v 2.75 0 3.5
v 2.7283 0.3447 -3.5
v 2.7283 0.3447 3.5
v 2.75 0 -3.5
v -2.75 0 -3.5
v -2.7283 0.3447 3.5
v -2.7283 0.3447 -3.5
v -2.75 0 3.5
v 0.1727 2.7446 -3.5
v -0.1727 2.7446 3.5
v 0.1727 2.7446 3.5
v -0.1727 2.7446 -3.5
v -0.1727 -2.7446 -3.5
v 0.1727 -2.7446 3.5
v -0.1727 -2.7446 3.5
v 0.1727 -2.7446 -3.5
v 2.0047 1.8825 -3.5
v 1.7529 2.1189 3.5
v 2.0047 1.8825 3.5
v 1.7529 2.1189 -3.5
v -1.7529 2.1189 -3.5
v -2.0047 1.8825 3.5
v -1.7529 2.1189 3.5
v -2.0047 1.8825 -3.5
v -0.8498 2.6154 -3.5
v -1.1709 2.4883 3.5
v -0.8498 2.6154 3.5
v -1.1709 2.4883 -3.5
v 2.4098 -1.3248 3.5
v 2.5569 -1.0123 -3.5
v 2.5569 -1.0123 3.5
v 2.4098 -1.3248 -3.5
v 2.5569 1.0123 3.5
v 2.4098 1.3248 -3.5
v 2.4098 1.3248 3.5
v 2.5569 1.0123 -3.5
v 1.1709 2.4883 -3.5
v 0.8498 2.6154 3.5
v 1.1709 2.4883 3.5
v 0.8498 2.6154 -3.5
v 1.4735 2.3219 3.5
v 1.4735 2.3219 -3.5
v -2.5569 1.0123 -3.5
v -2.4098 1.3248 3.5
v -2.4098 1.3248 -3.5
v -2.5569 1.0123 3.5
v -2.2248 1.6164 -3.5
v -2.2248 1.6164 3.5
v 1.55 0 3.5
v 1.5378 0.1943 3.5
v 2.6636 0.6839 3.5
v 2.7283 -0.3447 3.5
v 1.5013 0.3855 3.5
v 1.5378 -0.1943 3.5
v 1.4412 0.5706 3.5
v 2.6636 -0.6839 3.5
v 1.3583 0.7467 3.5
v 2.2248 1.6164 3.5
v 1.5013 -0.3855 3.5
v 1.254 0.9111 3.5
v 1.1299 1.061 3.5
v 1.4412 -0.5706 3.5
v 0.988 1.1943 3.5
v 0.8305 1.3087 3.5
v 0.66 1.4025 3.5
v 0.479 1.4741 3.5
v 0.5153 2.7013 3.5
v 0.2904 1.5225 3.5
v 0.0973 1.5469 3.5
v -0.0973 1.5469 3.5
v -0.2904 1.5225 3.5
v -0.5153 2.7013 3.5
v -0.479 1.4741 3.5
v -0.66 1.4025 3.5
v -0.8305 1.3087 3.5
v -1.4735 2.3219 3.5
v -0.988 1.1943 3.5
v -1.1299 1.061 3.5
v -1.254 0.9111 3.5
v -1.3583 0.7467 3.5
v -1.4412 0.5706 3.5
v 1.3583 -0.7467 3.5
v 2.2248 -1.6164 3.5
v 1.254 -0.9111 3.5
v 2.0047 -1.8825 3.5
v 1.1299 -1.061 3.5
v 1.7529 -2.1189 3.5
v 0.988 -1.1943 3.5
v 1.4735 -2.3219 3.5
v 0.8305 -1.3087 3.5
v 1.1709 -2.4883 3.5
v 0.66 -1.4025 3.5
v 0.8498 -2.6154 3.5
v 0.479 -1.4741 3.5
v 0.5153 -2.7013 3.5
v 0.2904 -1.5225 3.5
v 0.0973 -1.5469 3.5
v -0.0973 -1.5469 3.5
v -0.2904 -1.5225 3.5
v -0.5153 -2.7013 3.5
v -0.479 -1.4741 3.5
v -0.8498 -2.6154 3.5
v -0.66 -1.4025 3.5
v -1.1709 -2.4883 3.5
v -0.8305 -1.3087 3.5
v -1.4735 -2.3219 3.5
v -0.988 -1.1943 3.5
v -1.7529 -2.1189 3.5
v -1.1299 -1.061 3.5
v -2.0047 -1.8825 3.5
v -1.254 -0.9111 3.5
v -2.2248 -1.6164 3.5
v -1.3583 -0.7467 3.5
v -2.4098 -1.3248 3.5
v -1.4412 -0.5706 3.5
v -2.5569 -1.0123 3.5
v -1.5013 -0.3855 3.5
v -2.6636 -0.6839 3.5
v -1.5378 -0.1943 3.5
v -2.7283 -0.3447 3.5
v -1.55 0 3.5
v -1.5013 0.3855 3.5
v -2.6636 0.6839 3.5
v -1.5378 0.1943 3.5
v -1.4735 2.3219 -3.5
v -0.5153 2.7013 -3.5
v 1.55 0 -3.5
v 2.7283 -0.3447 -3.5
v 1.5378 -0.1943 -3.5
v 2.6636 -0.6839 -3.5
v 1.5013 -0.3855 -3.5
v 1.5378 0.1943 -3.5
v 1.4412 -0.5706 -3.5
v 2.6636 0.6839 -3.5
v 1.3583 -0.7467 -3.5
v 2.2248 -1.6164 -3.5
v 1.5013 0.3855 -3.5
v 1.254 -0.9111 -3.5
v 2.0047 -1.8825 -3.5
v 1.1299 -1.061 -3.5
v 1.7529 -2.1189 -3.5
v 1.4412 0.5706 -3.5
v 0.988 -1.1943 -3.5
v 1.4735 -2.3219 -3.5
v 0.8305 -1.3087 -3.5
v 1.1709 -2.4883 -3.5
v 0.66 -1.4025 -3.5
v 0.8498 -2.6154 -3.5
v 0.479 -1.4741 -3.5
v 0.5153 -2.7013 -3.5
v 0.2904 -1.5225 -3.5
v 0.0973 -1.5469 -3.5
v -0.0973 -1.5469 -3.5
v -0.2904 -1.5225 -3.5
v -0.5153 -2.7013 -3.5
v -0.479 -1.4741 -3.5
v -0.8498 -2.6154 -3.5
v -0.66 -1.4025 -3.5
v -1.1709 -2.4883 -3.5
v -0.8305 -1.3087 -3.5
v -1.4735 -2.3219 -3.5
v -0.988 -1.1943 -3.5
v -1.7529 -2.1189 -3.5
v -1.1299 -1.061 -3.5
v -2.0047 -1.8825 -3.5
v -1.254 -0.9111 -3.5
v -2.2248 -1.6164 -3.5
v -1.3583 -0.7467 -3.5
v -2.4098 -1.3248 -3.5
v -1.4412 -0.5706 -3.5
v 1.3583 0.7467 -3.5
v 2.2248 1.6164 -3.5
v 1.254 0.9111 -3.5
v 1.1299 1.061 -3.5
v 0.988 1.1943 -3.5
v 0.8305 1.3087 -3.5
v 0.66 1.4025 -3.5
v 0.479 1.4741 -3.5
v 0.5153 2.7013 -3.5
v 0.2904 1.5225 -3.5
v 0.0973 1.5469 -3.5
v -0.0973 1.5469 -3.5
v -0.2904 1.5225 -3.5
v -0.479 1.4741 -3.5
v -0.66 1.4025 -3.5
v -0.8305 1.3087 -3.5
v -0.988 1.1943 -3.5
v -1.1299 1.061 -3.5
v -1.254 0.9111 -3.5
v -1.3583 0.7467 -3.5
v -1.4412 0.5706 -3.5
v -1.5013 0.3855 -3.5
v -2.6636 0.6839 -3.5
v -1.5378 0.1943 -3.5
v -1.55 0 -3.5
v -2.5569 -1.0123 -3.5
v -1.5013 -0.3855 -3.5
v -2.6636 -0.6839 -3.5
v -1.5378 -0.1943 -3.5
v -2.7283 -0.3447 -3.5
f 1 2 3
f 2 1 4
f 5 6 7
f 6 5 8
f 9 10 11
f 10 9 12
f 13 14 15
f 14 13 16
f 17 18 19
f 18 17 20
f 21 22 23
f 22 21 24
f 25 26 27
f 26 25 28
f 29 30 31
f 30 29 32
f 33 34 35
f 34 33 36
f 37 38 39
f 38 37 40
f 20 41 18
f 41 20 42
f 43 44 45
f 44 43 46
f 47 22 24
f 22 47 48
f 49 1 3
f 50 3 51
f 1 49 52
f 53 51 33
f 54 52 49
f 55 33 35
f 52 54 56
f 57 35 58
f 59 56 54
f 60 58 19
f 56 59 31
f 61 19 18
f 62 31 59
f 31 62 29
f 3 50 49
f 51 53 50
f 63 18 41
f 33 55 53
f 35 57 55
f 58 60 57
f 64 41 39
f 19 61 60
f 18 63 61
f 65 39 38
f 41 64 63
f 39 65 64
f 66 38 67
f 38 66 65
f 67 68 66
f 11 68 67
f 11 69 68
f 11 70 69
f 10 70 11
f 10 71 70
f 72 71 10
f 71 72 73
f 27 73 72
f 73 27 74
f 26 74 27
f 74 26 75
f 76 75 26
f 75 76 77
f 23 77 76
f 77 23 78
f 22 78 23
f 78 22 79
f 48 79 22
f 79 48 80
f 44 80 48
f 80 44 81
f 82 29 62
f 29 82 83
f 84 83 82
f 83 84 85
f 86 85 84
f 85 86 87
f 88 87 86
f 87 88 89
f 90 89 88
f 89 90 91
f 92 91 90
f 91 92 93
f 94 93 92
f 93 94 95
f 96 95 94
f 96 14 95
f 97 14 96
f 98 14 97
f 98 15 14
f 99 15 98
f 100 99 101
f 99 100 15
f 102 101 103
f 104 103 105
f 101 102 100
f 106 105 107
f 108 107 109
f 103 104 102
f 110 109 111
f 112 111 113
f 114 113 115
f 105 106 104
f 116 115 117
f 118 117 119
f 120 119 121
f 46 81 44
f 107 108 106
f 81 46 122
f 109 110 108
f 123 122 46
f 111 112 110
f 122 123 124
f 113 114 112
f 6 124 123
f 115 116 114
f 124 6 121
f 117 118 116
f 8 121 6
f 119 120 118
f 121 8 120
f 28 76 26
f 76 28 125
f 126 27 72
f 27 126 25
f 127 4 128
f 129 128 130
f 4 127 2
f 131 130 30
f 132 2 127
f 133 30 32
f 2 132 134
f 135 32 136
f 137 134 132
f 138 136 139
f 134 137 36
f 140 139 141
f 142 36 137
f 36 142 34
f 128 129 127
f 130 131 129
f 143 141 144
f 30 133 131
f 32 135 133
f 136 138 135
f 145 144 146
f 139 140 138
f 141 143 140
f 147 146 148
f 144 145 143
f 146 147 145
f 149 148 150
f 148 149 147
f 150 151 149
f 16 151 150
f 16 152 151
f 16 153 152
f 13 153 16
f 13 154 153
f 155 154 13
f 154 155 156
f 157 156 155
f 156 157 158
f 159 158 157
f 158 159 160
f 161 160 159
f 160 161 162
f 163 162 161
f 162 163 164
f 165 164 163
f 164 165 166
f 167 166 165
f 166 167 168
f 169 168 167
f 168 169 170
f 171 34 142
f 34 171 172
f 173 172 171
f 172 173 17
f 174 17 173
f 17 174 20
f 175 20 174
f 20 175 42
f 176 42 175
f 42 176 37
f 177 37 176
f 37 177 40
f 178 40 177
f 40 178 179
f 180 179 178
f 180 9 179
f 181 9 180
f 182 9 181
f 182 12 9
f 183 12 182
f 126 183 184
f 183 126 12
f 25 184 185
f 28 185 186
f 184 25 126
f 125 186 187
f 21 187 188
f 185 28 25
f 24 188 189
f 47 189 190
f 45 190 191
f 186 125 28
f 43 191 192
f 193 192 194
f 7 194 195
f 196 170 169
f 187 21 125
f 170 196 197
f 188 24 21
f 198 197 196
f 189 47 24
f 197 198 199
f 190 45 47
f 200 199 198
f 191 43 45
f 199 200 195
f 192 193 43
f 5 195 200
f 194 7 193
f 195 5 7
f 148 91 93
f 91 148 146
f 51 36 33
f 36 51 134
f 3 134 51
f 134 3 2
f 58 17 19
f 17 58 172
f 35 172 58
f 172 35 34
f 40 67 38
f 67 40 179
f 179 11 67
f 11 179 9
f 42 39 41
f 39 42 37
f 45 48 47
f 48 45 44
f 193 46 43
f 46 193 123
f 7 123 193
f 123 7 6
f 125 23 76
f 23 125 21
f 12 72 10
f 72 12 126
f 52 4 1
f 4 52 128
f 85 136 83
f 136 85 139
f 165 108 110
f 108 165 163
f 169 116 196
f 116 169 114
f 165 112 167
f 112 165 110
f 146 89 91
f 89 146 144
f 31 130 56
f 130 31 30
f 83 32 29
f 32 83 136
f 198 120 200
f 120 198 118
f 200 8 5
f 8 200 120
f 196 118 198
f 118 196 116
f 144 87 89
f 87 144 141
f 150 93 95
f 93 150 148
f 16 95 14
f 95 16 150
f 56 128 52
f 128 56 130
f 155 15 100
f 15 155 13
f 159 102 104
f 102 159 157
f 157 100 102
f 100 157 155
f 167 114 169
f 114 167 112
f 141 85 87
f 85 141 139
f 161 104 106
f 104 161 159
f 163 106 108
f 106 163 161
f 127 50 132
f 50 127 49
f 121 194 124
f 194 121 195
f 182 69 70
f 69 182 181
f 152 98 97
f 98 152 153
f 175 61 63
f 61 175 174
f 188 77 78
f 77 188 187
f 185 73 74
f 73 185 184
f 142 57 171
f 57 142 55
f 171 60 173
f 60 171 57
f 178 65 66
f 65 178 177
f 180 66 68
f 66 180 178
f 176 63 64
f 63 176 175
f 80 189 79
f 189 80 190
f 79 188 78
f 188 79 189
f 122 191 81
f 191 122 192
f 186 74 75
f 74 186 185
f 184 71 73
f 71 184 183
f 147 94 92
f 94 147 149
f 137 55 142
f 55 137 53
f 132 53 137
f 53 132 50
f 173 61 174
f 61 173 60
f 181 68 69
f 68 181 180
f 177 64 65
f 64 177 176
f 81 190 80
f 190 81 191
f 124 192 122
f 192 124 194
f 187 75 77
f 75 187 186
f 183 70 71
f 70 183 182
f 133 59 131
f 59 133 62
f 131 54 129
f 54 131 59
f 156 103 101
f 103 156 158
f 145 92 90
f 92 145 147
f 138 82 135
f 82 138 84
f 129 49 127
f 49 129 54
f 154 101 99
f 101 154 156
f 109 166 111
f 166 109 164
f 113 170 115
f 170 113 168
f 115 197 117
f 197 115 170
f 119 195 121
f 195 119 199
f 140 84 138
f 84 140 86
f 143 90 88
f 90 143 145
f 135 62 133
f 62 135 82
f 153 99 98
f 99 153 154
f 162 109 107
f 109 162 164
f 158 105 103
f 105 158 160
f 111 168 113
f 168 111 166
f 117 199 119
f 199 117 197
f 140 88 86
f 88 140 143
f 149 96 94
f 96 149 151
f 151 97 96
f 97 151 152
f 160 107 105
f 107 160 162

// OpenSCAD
$fn = 50;


difference() {
	union() {
		translate(v = [0, 0, -3.5000000000]) {
			cylinder(h = 7, r = 2.7500000000);
		}
	}
	union() {
		translate(v = [0, 0, -100.0000000000]) {
			cylinder(h = 200, r = 1.5500000000);
		}
	}
}
